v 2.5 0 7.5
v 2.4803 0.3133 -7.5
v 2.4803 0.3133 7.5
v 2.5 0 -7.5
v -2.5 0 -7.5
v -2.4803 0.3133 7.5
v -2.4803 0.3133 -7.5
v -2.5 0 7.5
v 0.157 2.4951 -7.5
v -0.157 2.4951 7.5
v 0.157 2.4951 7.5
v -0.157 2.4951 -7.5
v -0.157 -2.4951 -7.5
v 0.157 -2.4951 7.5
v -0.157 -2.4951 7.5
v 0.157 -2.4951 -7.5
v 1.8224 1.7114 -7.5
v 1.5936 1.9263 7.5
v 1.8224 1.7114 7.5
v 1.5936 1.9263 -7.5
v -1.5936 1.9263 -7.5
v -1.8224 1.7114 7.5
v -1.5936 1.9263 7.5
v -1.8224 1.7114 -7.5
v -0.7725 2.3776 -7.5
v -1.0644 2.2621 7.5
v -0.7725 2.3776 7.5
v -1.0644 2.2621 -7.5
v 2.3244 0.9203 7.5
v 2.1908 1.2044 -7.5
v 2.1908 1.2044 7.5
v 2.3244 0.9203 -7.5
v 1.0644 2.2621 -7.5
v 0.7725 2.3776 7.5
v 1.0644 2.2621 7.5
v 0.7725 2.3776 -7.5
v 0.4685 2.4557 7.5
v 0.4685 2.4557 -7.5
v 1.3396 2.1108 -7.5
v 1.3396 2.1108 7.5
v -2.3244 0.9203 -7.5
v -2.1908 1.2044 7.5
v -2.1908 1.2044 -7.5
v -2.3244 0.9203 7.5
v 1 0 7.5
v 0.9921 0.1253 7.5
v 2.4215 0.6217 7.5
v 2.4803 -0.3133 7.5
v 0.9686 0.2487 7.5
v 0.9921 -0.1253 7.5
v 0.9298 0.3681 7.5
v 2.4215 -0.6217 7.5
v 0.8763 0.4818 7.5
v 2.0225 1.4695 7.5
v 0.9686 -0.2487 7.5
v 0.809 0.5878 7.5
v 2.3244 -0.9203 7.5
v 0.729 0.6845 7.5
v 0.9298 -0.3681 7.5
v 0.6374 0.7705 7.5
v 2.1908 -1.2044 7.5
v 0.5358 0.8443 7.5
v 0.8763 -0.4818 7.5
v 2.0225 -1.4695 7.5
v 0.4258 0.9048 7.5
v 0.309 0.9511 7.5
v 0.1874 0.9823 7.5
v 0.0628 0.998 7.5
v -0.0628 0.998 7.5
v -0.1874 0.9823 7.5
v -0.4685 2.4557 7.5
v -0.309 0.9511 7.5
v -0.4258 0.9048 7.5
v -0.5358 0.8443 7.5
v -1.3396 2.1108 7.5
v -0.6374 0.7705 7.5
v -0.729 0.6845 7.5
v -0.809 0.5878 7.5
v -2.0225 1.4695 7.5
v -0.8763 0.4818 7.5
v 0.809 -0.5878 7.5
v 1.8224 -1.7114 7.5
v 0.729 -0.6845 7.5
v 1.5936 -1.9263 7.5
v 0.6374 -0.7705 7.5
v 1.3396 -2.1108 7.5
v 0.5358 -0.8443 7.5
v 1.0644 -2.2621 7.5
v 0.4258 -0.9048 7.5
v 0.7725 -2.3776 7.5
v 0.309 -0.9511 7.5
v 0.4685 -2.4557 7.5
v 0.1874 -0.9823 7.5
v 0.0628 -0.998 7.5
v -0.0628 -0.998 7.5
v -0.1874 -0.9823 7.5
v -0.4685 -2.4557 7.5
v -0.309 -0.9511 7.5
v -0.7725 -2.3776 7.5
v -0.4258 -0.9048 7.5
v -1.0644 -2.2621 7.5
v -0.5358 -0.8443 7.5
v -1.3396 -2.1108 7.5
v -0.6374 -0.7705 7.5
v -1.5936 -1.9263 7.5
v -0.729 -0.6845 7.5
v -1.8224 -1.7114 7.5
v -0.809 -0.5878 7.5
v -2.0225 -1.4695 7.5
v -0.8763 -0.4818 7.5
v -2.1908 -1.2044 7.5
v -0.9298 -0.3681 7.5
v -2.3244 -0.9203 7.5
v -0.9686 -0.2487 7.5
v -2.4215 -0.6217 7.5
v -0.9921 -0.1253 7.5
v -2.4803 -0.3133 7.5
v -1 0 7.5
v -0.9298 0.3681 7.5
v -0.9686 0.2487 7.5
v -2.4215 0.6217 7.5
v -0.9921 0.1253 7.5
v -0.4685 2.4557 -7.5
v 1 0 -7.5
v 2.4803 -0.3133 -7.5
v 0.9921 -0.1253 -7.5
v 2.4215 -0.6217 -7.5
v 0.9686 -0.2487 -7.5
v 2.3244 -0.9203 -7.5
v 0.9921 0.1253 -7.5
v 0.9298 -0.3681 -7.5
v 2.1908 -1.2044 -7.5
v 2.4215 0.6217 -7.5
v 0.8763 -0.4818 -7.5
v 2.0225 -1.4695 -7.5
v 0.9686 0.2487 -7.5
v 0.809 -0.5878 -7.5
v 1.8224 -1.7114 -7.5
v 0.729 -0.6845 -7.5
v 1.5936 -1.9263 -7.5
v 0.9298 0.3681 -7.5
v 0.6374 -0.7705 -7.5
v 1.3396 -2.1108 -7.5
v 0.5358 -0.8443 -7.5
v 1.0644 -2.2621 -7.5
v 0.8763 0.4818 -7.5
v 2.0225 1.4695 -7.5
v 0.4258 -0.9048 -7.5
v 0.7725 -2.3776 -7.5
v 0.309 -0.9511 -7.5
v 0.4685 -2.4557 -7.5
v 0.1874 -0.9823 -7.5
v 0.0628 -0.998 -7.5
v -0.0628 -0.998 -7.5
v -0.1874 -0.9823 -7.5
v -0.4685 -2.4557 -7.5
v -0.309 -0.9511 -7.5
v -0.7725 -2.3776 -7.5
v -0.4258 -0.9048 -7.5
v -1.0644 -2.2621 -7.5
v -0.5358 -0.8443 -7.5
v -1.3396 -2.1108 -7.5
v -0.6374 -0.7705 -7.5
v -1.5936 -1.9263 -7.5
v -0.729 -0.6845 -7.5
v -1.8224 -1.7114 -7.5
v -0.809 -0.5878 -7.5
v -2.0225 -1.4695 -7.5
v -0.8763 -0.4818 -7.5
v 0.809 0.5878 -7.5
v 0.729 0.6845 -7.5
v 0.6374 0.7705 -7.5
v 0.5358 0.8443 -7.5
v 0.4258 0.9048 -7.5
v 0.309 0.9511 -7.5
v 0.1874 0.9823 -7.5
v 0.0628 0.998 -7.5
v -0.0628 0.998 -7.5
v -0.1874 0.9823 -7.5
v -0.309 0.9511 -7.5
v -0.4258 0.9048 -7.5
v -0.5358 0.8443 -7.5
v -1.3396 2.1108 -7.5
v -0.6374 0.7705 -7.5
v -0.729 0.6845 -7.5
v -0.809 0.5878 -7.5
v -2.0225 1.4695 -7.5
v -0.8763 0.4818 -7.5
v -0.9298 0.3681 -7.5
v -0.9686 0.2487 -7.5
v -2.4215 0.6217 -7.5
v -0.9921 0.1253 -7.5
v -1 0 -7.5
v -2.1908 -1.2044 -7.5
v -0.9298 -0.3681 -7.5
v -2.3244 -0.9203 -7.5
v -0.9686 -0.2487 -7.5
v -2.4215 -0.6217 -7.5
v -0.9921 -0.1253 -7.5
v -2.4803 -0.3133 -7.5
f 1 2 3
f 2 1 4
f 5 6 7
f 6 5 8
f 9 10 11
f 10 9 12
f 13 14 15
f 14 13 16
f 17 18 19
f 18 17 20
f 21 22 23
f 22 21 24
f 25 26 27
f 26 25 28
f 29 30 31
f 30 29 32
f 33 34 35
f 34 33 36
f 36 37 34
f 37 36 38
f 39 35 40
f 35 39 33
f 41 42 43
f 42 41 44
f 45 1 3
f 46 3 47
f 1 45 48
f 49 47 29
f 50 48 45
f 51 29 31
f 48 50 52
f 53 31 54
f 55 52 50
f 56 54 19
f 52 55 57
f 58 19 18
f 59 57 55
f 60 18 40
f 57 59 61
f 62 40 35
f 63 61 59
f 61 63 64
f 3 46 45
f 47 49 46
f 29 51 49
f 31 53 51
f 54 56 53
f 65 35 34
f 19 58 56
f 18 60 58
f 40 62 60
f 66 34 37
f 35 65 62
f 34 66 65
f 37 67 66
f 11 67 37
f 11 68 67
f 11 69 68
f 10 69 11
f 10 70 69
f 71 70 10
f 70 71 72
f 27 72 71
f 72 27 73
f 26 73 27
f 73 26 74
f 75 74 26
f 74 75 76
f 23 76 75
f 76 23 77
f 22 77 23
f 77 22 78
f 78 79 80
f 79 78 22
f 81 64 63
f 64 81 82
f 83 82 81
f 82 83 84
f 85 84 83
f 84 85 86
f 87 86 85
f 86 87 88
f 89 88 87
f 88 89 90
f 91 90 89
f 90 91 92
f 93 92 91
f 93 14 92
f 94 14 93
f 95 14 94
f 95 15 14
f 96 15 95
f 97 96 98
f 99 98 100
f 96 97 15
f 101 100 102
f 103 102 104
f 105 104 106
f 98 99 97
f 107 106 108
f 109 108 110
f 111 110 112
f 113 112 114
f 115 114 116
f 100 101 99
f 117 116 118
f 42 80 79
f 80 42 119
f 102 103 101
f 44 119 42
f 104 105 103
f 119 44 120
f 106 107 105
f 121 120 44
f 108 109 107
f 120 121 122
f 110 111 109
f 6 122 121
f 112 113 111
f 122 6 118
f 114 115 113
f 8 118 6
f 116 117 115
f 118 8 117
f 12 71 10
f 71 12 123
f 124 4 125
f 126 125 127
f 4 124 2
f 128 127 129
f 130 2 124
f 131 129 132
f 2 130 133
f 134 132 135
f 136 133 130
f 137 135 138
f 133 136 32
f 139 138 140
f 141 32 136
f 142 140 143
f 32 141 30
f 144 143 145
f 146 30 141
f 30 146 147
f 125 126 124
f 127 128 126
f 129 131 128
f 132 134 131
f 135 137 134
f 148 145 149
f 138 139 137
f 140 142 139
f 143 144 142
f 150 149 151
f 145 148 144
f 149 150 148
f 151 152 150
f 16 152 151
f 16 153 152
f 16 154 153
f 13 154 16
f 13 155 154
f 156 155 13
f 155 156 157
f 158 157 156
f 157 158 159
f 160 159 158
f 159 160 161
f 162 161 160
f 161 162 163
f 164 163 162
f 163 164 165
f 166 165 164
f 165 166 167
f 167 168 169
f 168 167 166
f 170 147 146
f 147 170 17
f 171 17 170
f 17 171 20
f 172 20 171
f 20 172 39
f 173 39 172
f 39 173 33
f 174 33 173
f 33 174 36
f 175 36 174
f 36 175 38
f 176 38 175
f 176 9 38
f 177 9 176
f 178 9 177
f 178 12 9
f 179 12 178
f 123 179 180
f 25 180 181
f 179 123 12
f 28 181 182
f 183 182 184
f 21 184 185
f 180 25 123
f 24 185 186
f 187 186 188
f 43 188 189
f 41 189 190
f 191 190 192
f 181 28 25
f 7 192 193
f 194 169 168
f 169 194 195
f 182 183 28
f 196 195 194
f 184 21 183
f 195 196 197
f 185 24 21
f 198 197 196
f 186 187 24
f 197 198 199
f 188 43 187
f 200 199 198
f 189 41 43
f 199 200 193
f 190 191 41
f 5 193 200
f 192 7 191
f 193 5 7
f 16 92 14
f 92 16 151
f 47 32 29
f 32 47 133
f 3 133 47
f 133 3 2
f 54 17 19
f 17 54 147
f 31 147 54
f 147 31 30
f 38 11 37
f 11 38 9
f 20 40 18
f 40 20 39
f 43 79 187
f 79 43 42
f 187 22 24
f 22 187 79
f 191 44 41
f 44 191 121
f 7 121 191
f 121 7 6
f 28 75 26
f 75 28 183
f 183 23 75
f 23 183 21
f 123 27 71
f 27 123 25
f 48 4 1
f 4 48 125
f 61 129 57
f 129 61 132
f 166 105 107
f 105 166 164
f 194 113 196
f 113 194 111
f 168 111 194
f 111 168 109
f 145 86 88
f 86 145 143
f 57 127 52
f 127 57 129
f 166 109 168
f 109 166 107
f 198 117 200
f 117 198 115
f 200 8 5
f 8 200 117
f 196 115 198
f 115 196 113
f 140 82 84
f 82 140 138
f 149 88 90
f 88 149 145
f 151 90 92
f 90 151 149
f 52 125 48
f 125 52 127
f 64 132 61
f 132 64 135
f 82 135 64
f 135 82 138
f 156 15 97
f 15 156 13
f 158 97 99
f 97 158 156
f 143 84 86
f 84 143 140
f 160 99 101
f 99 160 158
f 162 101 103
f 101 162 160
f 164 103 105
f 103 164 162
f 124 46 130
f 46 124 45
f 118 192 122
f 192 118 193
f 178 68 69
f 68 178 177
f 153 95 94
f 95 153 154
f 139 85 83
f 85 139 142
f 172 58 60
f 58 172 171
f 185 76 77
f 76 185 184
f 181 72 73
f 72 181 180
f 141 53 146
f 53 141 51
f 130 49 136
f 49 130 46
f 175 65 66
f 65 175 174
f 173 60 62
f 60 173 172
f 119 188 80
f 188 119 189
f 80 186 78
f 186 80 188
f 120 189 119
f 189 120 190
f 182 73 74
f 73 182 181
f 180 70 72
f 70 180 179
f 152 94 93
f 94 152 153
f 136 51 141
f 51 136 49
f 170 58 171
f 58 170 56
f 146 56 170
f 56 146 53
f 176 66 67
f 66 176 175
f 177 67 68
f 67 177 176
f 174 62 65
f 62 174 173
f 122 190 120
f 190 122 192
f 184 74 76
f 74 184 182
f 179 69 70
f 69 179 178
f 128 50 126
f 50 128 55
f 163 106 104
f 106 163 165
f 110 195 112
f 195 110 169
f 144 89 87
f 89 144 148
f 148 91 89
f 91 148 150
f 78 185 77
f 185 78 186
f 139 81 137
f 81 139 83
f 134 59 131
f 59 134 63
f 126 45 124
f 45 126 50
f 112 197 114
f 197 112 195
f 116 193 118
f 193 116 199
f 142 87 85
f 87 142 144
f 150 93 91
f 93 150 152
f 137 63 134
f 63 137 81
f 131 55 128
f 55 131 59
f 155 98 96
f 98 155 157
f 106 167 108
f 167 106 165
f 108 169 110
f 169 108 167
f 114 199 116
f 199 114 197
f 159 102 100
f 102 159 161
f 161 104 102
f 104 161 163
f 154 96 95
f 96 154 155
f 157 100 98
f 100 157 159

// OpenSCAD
$fn = 50;


difference() {
	union() {
		translate(v = [0, 0, -7.5000000000]) {
			cylinder(h = 15, r = 2.5000000000);
		}
	}
	union() {
		translate(v = [0, 0, -100.0000000000]) {
			cylinder(h = 200, r = 1.0000000000);
		}
	}
}
